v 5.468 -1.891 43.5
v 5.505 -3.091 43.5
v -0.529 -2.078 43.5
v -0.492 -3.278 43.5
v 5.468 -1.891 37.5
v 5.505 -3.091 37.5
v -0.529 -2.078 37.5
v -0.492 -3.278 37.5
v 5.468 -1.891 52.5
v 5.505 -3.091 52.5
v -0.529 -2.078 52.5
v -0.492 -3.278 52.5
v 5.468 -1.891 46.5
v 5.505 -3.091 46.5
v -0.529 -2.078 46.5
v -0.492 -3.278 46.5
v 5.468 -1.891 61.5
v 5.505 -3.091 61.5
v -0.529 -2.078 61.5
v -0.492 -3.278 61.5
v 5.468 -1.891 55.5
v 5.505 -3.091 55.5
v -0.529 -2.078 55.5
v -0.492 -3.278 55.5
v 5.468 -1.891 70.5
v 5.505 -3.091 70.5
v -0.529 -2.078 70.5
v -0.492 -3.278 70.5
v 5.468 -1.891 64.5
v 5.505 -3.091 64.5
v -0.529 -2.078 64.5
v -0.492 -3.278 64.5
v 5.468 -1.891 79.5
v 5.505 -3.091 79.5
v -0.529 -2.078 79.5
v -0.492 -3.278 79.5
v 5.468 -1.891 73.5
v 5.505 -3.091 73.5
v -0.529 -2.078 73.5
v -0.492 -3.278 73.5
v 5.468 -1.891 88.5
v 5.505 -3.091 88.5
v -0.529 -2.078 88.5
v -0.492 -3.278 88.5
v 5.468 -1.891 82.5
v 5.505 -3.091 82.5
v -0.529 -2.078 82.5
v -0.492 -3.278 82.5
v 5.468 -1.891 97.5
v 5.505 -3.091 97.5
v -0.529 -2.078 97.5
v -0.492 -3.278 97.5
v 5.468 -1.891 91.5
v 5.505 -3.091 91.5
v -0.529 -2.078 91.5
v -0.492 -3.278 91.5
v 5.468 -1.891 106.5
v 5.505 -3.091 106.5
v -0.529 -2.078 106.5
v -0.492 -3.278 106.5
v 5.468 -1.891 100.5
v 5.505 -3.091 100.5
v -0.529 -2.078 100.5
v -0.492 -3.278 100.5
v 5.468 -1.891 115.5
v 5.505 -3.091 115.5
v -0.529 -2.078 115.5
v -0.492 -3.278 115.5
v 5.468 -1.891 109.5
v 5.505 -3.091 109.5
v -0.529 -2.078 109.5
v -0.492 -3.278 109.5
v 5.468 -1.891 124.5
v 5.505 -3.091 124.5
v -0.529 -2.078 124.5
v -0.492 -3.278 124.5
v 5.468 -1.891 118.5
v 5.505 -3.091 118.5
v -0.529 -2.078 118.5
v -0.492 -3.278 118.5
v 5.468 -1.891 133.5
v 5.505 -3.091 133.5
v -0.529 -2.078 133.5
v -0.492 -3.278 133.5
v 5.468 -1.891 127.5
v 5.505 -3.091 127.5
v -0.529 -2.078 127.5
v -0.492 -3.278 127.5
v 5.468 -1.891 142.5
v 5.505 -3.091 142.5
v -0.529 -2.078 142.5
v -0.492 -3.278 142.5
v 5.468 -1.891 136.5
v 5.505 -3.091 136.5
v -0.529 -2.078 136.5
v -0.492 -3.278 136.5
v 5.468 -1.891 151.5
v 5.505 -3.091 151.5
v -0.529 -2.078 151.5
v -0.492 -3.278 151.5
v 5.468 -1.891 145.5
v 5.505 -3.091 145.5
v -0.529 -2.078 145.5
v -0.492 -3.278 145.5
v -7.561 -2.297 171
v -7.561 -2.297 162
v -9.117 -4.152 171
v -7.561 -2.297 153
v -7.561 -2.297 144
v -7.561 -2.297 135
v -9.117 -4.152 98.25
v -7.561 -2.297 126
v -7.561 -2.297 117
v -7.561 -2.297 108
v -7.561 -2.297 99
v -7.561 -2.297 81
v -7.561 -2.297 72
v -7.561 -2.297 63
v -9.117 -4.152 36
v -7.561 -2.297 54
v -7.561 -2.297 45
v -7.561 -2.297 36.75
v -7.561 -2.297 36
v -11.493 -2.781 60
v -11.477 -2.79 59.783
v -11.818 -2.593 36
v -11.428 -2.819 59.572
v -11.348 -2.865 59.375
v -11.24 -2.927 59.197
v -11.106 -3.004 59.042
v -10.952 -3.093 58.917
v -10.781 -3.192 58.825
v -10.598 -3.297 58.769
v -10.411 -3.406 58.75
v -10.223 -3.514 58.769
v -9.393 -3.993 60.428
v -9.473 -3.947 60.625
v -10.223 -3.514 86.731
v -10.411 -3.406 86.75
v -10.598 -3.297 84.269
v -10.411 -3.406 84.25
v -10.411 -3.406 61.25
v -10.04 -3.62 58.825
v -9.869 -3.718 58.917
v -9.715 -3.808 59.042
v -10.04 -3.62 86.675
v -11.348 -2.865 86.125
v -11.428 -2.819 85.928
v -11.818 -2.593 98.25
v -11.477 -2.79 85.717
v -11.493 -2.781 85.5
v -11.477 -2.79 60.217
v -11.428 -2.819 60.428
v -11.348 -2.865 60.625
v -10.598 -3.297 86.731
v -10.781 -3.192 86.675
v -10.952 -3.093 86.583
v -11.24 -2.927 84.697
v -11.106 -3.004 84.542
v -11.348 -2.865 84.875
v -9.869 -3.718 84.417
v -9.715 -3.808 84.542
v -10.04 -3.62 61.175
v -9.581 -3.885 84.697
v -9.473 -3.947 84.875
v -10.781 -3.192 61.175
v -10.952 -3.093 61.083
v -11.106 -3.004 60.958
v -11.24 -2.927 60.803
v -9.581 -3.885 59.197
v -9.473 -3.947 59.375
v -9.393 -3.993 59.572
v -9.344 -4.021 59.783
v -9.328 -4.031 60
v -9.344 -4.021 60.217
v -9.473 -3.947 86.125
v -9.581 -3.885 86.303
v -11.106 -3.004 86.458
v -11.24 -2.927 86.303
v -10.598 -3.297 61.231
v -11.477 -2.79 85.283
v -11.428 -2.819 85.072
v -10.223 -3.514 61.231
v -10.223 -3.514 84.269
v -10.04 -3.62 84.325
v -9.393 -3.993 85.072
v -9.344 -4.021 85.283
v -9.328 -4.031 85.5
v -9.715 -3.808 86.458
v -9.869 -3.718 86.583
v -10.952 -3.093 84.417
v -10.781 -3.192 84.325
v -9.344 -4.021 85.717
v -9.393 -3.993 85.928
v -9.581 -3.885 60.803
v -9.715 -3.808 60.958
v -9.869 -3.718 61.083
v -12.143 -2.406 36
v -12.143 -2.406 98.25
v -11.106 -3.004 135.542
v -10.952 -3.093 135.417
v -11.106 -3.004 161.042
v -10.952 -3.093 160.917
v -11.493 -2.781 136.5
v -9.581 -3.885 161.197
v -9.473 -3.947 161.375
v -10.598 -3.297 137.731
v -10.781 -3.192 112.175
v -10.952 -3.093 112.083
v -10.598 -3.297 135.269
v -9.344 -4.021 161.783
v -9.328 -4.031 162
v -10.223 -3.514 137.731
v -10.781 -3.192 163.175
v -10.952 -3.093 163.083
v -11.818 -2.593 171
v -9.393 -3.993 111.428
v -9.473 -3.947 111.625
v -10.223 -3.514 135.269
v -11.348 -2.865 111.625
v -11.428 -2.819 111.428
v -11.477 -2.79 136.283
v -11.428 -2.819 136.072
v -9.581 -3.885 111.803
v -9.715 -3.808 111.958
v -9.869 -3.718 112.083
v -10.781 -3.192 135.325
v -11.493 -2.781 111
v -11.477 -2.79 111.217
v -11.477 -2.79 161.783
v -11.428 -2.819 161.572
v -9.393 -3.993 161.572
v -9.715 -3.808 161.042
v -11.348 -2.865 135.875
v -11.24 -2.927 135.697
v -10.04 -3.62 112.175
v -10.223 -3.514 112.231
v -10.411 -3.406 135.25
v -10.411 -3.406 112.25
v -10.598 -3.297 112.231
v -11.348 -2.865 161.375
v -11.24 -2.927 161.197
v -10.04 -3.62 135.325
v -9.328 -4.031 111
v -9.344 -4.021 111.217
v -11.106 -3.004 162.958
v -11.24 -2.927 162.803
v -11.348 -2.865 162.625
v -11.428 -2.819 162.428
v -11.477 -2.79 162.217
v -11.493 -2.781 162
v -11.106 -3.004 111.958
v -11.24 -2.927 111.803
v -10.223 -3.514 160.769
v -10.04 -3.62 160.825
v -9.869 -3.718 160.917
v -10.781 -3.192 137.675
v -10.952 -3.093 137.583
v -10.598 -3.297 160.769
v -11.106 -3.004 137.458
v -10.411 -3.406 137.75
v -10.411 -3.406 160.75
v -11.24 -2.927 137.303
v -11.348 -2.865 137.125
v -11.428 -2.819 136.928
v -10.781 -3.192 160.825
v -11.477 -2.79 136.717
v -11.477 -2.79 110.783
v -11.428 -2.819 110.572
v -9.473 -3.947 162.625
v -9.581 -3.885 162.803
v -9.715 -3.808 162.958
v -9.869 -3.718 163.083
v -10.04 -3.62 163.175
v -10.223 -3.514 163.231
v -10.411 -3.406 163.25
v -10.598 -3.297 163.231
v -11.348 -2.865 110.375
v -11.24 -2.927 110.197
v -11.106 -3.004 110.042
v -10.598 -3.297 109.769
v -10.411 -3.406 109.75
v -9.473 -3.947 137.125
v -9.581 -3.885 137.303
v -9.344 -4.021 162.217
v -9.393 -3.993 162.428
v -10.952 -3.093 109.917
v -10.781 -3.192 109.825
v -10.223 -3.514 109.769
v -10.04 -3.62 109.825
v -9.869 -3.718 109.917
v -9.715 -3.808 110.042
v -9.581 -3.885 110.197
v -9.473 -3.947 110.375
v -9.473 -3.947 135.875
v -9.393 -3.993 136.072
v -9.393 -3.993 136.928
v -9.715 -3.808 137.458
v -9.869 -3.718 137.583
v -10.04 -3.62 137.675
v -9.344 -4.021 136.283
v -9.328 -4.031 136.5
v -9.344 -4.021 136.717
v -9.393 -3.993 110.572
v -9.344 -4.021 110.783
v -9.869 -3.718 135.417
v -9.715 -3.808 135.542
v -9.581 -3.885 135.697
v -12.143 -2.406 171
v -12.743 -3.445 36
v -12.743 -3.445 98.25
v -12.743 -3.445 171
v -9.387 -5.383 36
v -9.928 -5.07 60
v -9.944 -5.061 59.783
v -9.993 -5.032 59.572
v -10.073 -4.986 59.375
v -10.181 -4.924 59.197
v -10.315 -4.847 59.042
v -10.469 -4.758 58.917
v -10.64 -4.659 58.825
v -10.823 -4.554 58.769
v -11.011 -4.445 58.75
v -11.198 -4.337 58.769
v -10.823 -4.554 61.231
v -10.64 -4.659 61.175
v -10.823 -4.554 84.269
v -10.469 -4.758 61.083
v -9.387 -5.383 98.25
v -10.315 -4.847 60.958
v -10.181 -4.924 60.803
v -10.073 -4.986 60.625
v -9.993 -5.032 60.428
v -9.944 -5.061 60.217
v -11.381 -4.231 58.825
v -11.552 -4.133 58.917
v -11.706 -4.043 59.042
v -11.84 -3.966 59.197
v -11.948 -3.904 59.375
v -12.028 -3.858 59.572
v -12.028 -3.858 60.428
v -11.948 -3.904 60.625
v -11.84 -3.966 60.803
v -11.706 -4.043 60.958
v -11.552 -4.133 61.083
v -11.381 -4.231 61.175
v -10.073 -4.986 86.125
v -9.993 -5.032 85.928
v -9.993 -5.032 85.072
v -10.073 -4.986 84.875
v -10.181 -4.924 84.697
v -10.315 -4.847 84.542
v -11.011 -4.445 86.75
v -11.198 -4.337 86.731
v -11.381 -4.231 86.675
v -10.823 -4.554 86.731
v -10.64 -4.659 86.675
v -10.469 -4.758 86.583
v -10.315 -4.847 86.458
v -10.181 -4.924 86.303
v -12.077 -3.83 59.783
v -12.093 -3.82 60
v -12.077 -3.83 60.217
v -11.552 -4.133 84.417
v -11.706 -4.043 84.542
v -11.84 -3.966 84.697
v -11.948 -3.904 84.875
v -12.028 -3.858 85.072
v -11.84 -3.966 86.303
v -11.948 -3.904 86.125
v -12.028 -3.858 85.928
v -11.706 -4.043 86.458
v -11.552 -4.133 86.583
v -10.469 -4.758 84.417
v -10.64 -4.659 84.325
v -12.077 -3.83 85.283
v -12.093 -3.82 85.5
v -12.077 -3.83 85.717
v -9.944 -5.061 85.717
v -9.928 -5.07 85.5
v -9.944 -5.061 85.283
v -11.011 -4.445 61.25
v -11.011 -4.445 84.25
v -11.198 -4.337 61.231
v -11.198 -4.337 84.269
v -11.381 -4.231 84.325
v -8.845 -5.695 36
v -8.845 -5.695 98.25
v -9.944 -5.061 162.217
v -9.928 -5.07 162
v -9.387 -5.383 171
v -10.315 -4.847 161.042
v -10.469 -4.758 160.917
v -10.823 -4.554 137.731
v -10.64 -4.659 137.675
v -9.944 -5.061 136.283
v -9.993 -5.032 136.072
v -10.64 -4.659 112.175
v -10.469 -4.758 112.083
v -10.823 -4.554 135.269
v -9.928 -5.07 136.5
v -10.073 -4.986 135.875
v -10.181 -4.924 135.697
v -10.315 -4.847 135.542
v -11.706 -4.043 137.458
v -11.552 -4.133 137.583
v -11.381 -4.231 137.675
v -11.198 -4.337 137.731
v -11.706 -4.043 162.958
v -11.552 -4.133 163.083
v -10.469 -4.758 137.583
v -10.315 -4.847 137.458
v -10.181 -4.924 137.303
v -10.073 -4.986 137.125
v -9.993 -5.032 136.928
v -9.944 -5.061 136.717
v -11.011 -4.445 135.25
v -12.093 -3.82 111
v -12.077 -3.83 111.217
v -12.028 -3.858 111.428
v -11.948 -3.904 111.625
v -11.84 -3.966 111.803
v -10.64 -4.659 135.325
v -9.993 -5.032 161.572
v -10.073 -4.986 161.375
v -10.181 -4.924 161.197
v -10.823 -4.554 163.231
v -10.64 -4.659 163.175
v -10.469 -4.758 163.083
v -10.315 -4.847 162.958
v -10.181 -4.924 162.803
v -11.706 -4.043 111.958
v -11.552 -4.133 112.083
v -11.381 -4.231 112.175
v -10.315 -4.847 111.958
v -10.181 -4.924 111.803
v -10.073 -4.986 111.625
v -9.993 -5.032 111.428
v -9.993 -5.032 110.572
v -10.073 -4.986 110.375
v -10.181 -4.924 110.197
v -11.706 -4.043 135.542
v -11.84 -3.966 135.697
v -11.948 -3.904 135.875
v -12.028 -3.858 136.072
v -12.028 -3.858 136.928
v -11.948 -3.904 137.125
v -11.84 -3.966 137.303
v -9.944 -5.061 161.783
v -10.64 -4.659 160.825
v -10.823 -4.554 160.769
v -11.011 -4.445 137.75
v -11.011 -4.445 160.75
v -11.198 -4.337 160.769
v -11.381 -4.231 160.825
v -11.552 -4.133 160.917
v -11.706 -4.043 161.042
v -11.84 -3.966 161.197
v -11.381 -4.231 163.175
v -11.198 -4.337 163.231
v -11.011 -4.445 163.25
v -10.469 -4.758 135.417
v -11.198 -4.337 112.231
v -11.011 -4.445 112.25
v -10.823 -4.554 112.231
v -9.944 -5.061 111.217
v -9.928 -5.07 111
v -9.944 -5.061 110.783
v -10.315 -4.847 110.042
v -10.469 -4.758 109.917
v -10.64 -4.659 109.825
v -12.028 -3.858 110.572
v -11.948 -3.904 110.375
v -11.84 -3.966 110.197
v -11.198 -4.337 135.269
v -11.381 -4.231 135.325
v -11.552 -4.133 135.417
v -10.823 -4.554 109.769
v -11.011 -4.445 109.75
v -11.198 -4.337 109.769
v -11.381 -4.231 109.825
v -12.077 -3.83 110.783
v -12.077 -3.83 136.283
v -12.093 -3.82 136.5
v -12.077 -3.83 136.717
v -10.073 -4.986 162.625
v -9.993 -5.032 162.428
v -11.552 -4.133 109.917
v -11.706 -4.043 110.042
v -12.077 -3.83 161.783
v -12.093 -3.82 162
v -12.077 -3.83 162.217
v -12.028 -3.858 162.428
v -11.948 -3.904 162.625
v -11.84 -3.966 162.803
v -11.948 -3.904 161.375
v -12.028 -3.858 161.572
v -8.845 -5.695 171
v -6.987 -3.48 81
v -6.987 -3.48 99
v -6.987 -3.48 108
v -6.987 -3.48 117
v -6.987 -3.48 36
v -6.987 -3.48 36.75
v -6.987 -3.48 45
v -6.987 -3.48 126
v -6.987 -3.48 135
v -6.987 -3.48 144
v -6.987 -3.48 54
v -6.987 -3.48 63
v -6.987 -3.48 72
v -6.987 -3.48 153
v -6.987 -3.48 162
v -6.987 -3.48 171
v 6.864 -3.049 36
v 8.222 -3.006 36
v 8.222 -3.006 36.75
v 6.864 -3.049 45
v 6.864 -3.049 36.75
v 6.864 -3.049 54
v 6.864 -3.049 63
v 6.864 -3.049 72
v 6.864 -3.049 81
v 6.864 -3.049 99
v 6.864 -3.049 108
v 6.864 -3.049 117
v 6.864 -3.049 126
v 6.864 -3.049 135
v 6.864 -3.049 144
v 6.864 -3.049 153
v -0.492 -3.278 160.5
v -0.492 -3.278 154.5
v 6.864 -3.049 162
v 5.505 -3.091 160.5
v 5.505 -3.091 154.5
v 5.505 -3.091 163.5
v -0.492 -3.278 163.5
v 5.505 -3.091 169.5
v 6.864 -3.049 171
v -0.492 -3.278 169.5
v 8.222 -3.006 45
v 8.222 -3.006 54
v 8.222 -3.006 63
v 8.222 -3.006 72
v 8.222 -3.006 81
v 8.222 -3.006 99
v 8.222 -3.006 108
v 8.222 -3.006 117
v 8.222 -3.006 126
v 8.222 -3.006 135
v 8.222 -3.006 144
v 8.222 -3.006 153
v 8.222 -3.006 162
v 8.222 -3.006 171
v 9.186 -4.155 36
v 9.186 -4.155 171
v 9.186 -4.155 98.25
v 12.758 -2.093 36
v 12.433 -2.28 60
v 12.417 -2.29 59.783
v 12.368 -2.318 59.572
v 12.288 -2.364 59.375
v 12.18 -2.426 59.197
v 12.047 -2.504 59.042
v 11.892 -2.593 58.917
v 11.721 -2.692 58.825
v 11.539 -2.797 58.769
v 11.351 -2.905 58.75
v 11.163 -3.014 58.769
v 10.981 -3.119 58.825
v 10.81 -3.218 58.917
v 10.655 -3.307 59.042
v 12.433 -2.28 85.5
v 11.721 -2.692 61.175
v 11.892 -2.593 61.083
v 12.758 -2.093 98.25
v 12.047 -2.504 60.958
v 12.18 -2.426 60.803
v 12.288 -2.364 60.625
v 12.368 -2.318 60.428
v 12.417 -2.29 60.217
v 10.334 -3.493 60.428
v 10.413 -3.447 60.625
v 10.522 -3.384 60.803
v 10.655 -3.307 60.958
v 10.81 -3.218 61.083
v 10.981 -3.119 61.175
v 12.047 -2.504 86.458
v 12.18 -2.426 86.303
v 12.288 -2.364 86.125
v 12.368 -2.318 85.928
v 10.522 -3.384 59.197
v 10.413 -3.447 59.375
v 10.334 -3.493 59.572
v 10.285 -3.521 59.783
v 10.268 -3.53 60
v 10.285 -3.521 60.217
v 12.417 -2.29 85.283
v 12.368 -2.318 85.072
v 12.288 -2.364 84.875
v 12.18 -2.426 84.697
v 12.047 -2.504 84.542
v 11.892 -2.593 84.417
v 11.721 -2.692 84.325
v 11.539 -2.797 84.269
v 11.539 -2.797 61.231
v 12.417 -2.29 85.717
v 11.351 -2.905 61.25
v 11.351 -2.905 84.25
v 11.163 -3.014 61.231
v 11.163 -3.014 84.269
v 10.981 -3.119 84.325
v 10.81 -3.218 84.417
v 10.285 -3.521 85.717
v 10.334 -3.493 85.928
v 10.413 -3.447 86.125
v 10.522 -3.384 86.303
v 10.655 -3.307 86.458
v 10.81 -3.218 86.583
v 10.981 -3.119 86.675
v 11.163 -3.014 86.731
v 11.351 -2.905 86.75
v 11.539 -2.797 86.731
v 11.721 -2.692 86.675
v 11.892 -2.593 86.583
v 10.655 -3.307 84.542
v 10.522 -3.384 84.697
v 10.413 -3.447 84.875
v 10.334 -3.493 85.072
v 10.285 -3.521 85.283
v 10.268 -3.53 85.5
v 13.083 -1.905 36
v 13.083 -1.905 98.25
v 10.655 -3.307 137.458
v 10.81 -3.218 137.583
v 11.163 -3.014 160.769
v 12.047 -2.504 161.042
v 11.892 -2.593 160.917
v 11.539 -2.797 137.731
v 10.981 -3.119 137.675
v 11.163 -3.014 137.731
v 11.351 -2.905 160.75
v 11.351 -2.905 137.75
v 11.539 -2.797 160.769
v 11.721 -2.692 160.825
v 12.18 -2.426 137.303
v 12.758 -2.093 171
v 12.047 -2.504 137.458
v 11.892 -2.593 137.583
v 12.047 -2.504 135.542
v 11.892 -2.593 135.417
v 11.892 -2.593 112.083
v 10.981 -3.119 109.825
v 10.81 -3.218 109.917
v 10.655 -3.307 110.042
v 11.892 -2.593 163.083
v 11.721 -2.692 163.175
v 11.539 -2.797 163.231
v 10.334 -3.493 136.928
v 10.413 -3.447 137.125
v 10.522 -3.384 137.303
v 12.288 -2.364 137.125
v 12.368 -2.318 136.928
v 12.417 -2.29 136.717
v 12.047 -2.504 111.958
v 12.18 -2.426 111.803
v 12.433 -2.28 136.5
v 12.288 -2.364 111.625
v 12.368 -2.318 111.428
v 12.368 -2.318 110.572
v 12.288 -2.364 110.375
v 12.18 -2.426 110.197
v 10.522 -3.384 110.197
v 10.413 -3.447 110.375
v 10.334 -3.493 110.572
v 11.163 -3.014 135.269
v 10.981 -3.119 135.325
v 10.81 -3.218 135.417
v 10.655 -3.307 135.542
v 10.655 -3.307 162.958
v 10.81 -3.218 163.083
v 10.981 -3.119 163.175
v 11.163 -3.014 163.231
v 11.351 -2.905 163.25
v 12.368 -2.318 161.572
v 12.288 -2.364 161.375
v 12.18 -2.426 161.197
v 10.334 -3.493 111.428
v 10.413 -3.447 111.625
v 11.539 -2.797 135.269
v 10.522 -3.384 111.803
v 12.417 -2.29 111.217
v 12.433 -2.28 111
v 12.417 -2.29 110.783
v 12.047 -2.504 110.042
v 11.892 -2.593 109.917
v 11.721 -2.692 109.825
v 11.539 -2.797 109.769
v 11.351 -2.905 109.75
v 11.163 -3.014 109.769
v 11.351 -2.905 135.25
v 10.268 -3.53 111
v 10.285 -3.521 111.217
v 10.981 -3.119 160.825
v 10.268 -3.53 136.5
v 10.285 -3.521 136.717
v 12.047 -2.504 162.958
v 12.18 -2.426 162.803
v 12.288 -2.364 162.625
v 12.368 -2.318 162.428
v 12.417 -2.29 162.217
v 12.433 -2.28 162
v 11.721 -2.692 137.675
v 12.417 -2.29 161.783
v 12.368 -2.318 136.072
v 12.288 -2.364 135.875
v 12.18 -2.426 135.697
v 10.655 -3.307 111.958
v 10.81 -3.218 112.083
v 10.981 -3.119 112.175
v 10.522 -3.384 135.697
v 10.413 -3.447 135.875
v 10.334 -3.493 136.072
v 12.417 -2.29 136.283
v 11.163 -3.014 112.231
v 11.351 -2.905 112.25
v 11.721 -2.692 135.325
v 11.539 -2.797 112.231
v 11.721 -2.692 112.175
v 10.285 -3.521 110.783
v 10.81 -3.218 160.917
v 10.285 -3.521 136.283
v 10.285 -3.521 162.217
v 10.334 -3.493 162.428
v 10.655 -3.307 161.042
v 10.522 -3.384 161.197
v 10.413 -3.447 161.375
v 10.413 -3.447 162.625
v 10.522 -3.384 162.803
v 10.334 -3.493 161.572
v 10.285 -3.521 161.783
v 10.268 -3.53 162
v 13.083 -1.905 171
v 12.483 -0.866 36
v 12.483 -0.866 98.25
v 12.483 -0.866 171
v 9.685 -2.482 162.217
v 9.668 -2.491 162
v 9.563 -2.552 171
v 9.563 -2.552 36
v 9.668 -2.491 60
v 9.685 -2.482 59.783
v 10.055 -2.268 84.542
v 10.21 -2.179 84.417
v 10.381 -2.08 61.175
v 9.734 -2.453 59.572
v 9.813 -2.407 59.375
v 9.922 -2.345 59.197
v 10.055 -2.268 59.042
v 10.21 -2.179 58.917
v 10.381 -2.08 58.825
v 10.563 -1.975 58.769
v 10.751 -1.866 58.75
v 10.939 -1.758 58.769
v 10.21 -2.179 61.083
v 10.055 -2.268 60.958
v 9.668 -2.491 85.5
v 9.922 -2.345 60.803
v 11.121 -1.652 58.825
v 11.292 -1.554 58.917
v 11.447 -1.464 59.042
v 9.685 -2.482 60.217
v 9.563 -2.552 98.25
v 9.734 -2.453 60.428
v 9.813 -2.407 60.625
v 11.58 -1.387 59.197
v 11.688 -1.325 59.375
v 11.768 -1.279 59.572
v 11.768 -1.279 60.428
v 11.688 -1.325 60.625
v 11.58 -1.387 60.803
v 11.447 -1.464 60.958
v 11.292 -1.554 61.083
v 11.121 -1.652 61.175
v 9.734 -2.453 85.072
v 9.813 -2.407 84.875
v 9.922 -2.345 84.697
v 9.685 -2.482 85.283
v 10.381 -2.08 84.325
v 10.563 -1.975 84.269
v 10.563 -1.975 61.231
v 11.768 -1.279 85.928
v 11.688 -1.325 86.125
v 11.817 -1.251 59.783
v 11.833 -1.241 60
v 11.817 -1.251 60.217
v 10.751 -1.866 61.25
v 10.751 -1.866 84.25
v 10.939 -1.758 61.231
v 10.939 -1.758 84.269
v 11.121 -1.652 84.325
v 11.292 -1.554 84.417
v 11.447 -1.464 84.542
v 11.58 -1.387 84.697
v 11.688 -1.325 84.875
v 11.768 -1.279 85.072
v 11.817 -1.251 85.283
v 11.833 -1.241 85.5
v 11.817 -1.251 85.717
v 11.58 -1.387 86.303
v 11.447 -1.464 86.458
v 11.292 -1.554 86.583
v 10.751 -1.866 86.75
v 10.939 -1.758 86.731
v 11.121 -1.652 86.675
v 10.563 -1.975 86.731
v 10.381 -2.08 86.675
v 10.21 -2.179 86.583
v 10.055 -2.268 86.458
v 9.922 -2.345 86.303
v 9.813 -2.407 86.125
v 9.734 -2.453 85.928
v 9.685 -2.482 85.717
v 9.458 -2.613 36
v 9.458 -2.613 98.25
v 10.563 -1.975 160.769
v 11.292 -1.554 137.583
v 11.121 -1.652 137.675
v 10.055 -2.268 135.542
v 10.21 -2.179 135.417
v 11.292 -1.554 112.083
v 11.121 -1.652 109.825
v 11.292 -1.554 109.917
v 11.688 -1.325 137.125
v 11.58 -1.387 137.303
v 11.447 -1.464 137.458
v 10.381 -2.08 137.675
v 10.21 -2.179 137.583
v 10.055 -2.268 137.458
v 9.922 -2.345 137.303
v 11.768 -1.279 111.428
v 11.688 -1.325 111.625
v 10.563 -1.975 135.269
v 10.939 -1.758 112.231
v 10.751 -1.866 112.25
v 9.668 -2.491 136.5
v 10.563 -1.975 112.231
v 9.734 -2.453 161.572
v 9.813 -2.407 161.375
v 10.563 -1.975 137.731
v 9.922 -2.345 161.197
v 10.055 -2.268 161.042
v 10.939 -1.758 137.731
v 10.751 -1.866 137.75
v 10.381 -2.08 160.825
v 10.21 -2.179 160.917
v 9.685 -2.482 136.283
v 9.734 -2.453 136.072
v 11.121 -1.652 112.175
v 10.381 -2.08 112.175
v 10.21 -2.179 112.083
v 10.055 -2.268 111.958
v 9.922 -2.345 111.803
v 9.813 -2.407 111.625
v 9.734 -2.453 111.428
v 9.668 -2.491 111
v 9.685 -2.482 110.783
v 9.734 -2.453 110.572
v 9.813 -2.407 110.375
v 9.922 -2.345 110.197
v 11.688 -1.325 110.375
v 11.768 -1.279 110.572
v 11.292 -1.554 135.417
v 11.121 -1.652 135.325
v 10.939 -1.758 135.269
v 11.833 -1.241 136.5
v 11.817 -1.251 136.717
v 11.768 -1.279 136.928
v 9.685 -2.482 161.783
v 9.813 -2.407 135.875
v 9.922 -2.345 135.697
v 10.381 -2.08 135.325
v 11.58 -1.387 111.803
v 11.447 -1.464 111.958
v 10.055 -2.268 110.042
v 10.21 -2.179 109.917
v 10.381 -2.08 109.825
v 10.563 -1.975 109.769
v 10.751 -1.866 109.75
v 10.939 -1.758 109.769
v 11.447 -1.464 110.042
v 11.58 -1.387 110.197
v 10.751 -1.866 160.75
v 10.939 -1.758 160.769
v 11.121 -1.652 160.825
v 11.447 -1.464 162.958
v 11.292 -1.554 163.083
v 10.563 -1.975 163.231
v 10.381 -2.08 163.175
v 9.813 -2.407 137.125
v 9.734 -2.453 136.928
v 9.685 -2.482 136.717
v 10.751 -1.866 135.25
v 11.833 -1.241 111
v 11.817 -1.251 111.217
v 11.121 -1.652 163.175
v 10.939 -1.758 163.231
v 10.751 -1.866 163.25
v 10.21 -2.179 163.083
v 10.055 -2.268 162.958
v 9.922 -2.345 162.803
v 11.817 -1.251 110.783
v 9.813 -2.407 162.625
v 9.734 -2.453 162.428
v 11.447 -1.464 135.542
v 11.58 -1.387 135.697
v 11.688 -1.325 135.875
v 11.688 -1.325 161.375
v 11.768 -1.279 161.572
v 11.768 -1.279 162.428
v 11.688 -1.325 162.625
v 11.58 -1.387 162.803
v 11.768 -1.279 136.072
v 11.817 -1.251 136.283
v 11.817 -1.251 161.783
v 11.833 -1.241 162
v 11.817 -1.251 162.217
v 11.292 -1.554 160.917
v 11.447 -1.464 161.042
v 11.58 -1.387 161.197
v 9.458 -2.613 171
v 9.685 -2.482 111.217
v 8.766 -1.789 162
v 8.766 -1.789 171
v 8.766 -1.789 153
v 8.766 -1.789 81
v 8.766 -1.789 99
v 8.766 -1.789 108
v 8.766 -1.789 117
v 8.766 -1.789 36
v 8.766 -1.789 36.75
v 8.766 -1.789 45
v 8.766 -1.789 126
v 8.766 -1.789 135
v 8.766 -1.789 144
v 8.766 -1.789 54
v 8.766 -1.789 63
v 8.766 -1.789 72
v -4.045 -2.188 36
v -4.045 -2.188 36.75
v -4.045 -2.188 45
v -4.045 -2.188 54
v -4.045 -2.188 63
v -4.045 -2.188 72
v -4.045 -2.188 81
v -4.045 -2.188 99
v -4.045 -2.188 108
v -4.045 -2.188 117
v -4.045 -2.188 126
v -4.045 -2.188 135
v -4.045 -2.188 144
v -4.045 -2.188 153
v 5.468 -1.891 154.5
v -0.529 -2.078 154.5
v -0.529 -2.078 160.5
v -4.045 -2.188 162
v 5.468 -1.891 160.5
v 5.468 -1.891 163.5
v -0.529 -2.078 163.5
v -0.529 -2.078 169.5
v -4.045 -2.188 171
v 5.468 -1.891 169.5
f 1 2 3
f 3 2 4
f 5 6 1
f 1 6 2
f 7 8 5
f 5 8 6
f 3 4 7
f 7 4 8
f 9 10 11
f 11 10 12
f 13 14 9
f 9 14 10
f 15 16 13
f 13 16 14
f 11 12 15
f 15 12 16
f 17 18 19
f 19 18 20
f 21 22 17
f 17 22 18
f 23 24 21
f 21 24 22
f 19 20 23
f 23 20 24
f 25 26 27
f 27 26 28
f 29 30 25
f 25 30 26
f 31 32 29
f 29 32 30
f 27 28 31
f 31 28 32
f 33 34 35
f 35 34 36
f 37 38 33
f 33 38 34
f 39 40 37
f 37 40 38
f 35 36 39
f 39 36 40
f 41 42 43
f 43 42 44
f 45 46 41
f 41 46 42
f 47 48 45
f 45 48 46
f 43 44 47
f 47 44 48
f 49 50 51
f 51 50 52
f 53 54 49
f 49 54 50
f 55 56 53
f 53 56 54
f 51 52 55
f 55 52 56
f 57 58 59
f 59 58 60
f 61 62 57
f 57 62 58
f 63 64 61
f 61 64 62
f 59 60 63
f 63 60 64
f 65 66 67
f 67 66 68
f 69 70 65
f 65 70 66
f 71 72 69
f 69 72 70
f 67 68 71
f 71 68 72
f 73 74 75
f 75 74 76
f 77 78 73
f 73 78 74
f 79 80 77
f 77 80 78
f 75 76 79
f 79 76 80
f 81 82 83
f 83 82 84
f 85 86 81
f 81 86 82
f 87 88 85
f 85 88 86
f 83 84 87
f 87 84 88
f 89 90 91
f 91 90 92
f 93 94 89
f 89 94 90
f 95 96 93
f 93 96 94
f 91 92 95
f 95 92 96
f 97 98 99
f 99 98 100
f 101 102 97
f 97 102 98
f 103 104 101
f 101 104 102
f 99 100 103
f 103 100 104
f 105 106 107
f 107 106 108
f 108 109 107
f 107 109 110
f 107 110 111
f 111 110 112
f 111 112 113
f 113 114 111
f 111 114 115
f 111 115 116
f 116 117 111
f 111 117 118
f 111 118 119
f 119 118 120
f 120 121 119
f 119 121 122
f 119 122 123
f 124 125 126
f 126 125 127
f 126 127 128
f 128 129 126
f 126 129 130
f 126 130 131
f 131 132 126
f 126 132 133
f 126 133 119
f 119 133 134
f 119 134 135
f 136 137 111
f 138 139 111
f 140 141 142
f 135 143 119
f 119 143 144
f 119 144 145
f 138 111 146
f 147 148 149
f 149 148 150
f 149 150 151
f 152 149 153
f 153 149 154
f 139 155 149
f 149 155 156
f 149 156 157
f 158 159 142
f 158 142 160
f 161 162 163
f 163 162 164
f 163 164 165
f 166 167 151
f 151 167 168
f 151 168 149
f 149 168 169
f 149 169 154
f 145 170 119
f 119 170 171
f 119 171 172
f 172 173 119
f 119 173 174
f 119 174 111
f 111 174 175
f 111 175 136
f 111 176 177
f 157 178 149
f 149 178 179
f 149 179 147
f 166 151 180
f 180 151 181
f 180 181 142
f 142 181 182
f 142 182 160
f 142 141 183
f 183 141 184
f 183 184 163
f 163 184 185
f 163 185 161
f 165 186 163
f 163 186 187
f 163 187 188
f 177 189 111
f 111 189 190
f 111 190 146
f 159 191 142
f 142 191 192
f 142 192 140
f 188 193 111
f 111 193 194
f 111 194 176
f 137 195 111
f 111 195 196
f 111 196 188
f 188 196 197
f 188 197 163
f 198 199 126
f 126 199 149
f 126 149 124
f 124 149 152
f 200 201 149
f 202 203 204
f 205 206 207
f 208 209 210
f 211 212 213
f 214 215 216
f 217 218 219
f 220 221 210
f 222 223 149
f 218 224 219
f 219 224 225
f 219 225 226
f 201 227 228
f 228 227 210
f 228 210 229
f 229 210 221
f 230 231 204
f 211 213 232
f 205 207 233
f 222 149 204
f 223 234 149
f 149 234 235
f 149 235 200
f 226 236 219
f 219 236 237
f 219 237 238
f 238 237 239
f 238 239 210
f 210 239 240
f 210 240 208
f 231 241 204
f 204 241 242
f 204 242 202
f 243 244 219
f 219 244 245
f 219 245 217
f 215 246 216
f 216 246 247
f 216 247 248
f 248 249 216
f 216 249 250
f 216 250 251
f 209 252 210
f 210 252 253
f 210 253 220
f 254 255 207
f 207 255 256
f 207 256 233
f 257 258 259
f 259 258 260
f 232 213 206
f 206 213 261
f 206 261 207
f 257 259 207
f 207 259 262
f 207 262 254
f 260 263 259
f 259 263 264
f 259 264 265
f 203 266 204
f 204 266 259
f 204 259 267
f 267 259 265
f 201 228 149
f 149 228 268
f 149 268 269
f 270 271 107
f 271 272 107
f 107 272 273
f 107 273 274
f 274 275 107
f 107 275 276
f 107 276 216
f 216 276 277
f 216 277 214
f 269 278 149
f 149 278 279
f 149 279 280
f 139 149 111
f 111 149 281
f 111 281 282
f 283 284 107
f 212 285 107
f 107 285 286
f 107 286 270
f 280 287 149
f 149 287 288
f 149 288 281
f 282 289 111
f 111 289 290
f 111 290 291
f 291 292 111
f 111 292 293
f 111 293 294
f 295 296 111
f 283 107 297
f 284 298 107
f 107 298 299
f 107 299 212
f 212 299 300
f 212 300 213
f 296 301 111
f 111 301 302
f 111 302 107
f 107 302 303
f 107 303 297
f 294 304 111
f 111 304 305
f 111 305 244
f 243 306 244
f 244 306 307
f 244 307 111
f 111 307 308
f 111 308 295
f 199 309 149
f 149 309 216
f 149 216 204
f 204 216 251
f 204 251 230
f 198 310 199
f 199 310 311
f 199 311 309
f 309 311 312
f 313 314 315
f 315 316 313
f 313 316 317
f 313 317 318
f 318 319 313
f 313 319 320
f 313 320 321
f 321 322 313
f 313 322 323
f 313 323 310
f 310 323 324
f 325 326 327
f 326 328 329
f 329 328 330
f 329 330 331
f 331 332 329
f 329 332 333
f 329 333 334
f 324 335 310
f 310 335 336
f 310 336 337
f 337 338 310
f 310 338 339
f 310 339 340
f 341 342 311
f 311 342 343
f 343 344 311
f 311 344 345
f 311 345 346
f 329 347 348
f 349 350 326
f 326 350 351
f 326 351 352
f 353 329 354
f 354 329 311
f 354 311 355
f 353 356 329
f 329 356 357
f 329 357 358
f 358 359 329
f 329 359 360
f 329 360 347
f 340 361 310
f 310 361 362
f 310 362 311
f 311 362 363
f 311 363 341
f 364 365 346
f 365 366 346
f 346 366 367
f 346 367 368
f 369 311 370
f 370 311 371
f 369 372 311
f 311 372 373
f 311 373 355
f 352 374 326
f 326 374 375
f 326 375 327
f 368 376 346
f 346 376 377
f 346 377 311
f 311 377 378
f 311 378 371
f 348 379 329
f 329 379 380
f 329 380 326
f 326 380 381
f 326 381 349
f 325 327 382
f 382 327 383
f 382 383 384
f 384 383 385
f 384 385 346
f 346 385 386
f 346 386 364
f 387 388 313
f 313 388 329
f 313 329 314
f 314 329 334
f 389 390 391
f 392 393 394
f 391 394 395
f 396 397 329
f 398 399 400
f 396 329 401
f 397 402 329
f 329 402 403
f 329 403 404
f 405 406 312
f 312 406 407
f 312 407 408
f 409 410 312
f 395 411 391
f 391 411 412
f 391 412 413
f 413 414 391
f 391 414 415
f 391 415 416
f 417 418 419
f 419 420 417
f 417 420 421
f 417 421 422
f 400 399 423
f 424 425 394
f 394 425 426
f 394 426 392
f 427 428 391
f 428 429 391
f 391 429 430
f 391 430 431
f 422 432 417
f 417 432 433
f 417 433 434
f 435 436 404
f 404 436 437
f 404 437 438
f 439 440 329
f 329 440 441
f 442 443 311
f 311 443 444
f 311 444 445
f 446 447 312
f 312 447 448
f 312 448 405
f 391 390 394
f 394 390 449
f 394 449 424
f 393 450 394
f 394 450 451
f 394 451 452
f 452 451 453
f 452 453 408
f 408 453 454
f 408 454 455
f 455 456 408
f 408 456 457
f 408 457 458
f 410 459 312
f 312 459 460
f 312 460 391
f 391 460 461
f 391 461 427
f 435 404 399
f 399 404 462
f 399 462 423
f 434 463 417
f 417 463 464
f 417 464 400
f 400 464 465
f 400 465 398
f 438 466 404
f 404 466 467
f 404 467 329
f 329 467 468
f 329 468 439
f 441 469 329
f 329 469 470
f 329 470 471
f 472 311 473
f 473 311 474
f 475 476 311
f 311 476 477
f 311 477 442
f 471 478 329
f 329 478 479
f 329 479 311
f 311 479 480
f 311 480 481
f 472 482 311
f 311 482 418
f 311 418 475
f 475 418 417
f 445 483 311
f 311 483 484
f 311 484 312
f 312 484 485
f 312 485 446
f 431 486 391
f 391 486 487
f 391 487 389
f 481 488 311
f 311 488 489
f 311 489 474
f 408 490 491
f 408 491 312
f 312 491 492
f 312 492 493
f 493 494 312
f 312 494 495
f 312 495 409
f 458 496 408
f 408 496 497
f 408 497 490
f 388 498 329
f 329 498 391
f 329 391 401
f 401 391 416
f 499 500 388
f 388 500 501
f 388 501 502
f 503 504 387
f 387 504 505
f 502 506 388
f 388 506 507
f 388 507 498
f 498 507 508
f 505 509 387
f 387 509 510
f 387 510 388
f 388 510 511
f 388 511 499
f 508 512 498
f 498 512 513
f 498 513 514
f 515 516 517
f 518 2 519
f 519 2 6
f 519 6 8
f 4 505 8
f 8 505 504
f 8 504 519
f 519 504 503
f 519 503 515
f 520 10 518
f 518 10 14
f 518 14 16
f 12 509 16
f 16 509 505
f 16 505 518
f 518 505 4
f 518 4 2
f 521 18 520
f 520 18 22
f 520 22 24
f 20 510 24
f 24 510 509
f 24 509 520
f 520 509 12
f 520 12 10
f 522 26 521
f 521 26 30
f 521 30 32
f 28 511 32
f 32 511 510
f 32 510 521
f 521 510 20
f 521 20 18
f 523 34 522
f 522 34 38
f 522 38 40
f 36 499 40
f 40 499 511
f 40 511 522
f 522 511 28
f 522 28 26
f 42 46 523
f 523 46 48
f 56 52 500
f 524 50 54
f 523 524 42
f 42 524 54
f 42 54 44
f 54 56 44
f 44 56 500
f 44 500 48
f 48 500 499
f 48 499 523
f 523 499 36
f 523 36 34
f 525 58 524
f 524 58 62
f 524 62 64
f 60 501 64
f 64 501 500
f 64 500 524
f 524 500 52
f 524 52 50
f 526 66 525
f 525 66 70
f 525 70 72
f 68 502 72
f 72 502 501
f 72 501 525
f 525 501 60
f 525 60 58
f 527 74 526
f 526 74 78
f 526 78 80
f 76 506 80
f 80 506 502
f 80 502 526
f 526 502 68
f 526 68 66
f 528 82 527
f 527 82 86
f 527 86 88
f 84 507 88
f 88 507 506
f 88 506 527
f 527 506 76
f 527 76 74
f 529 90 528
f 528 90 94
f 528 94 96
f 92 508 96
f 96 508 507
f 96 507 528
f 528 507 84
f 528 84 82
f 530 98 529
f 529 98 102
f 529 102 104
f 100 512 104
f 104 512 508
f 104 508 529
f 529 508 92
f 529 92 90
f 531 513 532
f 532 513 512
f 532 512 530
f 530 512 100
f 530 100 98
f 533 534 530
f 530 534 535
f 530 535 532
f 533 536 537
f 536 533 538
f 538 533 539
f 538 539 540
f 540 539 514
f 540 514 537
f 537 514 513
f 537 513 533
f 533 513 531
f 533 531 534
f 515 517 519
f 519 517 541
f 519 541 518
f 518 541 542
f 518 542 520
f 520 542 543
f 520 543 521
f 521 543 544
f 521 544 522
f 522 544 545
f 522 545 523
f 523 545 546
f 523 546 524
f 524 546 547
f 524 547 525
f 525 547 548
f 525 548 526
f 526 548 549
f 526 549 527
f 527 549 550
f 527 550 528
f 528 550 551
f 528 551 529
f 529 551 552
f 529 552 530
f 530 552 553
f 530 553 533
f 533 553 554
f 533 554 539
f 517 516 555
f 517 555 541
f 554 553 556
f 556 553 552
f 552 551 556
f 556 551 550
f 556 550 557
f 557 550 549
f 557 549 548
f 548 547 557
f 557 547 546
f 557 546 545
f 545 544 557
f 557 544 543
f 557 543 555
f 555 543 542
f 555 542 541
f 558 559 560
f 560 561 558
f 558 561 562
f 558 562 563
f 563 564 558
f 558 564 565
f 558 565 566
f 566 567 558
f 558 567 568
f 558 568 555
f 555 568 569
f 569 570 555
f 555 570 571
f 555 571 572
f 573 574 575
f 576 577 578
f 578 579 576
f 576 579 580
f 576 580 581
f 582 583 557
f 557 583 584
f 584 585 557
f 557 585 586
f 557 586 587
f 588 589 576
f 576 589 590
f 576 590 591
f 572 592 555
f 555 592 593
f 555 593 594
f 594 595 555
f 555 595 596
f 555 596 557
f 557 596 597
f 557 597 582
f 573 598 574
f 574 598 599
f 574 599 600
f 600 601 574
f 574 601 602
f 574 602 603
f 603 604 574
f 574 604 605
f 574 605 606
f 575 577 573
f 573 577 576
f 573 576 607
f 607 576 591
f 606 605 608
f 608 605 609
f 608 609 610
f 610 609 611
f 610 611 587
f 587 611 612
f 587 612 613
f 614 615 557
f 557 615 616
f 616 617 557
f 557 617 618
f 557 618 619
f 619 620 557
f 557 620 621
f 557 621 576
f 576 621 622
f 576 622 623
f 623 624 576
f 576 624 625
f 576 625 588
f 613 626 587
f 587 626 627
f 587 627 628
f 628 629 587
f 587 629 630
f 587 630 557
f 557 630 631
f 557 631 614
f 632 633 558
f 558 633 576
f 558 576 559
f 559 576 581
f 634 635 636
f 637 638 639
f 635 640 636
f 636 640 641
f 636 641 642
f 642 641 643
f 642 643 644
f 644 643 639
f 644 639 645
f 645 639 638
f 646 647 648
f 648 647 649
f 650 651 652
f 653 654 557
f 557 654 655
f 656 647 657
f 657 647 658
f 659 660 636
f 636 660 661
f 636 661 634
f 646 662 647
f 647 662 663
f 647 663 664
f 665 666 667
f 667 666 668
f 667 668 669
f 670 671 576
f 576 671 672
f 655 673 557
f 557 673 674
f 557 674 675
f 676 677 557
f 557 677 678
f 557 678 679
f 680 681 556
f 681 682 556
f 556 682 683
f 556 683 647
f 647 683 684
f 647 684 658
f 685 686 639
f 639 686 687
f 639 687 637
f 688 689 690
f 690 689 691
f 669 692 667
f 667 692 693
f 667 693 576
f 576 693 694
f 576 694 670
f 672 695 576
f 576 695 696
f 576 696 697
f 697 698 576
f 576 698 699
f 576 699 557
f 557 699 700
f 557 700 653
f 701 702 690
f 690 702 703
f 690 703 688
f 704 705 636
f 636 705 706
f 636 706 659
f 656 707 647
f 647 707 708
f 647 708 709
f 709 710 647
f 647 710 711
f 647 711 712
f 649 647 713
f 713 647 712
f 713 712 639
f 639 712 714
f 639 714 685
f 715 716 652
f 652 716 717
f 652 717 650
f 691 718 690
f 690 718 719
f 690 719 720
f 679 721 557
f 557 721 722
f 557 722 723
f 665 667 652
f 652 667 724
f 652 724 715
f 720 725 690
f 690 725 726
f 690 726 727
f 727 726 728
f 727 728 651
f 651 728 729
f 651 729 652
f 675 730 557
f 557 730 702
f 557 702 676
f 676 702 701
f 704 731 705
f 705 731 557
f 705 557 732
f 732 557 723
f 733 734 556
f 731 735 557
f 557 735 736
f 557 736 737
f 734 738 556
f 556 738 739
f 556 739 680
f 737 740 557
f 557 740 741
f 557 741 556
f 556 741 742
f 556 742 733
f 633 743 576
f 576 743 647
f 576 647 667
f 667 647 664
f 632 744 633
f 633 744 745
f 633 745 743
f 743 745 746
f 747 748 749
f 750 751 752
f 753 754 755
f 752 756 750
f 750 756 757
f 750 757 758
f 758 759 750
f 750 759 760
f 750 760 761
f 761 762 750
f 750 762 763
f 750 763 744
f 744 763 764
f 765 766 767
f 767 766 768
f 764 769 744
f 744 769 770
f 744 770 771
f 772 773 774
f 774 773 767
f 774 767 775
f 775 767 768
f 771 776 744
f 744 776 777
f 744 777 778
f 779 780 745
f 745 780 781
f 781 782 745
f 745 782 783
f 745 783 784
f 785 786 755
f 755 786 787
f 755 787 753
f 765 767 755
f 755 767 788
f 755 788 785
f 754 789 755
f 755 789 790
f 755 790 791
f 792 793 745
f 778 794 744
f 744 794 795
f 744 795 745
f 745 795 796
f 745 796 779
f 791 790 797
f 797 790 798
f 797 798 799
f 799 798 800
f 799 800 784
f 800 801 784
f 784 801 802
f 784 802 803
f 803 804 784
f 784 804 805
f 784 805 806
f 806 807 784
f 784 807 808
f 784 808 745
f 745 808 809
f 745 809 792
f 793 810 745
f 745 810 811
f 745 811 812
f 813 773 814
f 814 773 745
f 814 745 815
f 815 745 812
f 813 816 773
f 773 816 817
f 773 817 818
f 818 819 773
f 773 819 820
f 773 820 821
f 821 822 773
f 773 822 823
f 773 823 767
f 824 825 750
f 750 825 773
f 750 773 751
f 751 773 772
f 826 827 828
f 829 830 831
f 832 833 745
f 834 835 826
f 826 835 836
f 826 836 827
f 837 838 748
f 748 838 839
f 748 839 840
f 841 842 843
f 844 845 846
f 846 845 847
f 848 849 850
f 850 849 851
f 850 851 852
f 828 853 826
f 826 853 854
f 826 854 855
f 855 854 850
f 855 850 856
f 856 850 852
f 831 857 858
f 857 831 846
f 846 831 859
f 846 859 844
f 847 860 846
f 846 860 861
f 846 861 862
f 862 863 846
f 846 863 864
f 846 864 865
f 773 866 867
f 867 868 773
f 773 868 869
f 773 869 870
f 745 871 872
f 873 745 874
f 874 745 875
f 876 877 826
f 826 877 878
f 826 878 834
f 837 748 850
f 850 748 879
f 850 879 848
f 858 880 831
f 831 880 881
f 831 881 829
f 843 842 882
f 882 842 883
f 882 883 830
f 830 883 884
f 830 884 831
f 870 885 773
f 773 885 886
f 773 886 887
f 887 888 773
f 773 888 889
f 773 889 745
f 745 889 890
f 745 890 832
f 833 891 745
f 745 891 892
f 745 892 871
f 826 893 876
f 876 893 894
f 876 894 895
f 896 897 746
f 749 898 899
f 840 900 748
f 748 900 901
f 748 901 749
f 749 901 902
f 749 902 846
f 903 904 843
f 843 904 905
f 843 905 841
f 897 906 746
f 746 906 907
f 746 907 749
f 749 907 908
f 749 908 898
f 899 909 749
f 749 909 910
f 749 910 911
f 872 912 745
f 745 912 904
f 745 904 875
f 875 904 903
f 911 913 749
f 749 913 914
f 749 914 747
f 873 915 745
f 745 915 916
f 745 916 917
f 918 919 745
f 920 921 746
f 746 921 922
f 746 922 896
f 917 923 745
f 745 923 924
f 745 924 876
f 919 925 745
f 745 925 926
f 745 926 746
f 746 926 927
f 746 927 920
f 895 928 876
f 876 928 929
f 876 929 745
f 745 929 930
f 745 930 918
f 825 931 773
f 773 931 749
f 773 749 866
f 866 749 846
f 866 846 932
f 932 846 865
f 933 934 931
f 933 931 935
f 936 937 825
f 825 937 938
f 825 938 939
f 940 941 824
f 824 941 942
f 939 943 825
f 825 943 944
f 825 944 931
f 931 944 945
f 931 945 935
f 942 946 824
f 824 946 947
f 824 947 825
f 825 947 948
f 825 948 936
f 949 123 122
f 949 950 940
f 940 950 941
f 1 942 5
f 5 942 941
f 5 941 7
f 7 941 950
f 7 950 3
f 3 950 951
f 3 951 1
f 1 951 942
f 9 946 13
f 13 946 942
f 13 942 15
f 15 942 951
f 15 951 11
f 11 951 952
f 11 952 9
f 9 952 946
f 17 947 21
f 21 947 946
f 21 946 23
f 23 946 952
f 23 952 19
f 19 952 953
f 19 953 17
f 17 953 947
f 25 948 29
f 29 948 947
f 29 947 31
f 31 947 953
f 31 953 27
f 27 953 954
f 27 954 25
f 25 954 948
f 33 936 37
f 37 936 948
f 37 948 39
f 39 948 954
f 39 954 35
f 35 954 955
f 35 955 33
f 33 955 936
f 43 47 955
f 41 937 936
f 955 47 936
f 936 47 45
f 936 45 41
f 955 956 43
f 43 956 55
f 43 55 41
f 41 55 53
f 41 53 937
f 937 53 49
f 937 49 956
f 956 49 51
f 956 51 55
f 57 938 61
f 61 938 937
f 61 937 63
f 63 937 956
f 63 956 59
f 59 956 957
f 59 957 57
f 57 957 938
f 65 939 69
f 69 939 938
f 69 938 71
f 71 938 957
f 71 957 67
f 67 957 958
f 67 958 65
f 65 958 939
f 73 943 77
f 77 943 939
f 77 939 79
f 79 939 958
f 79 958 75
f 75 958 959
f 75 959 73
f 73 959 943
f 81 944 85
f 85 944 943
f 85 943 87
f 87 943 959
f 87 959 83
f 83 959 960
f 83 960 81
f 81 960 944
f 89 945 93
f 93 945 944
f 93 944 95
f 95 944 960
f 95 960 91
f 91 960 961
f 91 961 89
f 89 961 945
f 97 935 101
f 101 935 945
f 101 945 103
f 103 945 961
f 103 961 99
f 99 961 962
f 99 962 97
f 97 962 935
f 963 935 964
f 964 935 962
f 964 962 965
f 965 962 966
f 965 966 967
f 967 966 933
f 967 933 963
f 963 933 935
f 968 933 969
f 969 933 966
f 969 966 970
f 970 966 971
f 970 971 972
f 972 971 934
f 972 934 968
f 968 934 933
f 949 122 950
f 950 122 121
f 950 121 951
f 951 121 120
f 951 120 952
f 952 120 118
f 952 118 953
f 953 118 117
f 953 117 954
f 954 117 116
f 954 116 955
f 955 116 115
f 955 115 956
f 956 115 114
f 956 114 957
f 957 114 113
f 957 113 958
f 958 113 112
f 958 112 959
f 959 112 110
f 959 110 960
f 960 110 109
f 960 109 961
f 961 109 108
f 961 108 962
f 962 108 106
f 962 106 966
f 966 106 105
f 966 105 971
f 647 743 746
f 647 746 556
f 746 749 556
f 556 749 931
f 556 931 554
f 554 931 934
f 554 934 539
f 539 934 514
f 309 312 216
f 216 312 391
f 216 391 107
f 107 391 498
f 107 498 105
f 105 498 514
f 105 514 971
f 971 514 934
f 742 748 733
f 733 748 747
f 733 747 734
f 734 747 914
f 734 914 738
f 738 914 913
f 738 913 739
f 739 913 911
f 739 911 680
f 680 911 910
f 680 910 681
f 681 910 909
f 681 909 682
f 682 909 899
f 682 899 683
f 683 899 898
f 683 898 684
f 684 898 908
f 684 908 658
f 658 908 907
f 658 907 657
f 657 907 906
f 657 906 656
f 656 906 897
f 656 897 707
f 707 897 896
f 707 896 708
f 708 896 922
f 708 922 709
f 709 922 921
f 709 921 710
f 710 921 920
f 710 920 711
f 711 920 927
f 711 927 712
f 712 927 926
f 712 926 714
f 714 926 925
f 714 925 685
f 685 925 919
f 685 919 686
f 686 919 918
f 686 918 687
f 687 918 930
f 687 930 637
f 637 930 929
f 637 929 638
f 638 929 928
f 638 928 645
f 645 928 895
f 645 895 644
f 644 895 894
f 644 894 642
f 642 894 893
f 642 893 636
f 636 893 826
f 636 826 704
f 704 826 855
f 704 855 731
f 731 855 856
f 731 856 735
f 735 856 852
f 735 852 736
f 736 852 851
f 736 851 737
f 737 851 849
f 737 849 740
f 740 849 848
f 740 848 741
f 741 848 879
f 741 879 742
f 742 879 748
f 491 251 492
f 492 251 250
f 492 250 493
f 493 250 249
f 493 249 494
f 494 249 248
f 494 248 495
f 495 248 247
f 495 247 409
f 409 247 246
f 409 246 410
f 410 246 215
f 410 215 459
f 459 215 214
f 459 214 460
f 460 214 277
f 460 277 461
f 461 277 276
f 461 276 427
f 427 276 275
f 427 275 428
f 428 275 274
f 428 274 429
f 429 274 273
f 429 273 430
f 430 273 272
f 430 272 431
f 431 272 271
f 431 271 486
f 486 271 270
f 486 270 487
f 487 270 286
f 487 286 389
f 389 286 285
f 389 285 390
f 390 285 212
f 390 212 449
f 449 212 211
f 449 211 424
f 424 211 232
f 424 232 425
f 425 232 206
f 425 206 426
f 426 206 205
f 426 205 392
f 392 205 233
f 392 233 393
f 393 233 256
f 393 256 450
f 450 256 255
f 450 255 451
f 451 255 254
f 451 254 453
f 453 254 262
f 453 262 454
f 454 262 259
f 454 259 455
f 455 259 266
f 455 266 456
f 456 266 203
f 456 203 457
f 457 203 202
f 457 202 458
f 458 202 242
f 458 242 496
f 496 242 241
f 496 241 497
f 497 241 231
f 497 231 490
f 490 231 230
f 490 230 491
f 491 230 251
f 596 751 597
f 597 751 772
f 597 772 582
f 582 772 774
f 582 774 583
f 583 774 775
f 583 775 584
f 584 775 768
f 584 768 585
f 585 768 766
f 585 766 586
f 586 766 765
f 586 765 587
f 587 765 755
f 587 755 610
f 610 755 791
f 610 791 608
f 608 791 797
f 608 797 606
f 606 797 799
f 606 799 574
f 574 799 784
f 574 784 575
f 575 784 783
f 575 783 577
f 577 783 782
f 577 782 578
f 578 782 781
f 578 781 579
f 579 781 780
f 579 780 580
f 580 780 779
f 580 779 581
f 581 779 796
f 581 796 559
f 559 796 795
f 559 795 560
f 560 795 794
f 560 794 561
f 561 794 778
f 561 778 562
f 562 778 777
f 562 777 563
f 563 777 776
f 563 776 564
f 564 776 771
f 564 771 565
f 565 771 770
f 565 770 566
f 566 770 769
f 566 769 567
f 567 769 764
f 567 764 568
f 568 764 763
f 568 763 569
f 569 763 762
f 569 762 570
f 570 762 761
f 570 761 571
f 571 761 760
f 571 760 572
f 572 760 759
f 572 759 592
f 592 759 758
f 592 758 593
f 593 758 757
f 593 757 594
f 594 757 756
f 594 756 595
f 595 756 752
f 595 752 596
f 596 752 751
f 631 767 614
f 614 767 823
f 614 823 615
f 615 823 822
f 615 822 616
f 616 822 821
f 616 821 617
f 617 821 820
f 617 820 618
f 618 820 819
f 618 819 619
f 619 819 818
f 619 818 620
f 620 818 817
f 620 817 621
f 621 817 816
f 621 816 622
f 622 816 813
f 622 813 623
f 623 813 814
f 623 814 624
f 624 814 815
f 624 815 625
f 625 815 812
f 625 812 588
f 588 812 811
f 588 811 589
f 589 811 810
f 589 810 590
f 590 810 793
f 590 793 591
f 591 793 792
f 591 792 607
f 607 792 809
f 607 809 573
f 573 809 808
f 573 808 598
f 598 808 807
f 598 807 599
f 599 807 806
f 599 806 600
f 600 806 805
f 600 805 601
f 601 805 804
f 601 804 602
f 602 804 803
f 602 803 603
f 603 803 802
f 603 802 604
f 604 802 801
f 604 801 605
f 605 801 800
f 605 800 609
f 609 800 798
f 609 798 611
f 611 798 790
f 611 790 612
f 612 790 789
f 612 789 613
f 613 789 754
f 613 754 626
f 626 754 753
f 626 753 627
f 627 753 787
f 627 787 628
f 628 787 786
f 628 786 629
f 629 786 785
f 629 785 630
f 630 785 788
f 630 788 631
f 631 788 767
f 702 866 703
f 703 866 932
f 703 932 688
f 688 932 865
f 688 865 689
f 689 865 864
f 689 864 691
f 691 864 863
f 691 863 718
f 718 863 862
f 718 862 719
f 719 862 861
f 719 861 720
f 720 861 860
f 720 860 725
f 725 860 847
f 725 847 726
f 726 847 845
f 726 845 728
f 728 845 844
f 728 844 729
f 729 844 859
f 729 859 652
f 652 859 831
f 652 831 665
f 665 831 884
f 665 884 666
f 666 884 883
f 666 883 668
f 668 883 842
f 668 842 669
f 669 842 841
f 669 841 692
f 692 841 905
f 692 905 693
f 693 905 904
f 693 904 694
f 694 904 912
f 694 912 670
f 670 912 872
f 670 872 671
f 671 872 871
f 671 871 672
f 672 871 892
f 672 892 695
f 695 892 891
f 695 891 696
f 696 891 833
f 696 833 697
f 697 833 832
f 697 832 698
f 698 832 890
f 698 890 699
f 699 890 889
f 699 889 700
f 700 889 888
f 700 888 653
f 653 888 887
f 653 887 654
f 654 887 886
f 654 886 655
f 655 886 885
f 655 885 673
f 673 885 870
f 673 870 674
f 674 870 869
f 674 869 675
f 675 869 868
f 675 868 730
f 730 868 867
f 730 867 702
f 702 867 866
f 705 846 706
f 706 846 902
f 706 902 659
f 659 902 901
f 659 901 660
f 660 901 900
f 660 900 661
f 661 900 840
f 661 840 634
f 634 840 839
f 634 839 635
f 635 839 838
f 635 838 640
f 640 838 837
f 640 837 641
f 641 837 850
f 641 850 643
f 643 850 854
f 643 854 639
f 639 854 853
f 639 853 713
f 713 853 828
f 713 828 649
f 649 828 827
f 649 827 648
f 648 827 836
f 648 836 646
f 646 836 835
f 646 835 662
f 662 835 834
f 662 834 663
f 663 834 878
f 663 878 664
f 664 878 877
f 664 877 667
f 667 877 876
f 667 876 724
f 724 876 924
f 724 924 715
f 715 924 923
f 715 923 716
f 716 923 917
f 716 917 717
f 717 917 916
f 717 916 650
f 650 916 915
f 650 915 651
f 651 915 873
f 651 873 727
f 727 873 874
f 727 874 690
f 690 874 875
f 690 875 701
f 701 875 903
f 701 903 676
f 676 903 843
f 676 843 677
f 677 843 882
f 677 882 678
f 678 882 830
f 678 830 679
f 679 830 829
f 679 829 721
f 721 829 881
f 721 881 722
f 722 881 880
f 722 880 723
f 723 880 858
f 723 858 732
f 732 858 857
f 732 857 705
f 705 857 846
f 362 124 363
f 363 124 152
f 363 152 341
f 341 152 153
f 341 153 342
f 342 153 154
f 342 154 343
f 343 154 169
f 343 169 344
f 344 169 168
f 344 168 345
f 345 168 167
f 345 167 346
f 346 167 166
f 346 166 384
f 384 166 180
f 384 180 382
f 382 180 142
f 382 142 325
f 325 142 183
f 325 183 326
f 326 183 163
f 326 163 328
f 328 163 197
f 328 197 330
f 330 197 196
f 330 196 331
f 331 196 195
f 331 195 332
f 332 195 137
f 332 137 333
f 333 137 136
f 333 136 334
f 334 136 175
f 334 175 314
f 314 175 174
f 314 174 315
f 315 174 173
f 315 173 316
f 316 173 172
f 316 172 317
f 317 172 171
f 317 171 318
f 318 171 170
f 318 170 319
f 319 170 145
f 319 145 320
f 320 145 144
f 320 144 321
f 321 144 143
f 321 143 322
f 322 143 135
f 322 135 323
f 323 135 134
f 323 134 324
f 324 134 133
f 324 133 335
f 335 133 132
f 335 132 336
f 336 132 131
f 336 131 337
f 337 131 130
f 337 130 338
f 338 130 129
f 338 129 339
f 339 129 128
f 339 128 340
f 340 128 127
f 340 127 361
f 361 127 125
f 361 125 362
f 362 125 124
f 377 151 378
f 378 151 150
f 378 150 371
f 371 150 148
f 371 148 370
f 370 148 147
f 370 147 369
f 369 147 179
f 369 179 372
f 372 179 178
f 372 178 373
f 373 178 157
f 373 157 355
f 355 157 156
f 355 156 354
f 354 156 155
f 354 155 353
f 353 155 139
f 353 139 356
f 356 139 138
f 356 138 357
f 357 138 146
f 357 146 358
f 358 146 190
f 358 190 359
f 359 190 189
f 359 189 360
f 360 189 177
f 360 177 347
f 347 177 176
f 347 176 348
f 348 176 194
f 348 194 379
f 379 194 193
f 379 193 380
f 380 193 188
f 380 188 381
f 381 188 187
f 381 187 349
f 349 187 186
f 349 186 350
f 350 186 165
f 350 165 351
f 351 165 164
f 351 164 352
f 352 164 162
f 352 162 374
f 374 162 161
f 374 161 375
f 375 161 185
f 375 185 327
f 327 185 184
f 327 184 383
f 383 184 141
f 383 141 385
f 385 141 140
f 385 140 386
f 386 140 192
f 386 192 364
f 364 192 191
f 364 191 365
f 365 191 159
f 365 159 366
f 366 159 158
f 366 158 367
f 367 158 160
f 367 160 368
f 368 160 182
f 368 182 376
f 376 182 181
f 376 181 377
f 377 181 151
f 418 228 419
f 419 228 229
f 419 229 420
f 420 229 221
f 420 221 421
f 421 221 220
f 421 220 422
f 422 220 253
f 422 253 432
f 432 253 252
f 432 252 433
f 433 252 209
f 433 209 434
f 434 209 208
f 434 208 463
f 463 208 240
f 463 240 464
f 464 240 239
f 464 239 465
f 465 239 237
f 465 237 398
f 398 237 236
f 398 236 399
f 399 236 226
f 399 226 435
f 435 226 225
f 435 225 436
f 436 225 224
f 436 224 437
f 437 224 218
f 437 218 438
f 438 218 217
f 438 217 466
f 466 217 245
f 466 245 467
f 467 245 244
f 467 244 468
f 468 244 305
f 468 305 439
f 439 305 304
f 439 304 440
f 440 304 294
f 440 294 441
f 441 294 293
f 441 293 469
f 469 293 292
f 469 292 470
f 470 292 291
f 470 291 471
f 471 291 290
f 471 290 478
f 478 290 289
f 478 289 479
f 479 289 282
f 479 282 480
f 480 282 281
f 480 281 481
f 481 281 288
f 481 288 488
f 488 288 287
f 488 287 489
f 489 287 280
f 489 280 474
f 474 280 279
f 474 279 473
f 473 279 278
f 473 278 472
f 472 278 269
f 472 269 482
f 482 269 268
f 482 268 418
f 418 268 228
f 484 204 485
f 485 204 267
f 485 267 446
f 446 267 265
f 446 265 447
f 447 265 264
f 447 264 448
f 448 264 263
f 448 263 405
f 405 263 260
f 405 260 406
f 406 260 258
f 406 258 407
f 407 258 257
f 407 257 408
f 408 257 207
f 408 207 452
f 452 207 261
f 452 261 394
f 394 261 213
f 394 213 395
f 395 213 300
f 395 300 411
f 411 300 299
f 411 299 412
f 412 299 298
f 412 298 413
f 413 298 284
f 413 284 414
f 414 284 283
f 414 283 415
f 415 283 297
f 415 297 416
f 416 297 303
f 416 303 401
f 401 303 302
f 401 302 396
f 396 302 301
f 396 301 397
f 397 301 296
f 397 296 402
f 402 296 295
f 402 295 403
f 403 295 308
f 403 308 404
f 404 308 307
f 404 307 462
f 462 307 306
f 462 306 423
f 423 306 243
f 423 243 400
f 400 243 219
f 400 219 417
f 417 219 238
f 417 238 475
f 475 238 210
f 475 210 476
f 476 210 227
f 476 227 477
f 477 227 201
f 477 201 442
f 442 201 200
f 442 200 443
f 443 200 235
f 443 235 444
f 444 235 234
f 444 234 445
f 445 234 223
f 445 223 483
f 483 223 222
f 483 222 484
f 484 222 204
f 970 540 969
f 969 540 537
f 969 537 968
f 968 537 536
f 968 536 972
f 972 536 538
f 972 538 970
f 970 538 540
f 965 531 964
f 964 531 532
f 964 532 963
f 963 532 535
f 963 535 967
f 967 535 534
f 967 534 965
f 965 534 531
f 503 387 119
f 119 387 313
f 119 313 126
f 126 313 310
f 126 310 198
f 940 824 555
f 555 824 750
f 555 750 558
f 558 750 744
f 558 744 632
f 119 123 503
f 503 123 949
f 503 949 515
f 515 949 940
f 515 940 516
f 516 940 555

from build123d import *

# Parameters (mm, degrees)
BOSS_EXTRUDE1_DEPTH = 171
SKETCH2_R           = 1.25
CUT_EXTRUDE1_DEPTH  = 10
SKETCH4_R           = 1.25
CUT_EXTRUDE2_DEPTH  = 10
LPATTERN1_COUNT     = 7
LPATTERN1_PITCH     = 25.5
SKETCH5_W           = 6
SKETCH5_H           = 6
CUT_EXTRUDE3_DEPTH  = 10
LPATTERN2_COUNT     = 19
LPATTERN2_PITCH     = 9
SKETCH6_W           = 39.406826709
SKETCH6_H           = 10.111121127
CUT_EXTRUDE4_DEPTH  = 36


with BuildPart() as part:
    # Sketch1 → Boss-Extrude1 (new body)
    with BuildSketch(Plane.XY):
        Polygon((-7.560747901, -2.297203345), (8.76644945, -1.788652997), (9.457807768, -2.612581756), (12.482904169, -0.866041535), (13.082904169, -1.905272019), (9.185789852, -4.155272019), (8.221608437, -3.006205355), (-6.986662858, -3.479904024), (-8.845450789, -5.695121219), (-12.742565106, -3.445121219), (-12.142565106, -2.405890734), (-9.117468705, -4.152430955), align=None)
    extrude(amount=BOSS_EXTRUDE1_DEPTH)

    # Sketch2 → Cut-Extrude1 (cut)
    with BuildSketch(Plane(origin=(3.495733027, -6.054787213, 0), x_dir=(0.8660254037844403, 0.49999999999999734, 0), z_dir=(-0.49999999999999734, 0.8660254037844403, 0))):
        with Locations(Location((8.377491356, -162, 0), (0, 0, 180))):
            Circle(SKETCH2_R)
    cut_extrude1 = extrude(amount=-CUT_EXTRUDE1_DEPTH, mode=Mode.SUBTRACT)

    # Sketch4 → Cut-Extrude2 (cut)
    with BuildSketch(Plane(origin=(-4.077422524, -7.062302975, 0), x_dir=(0.8660254037844392, -0.49999999999999917, 0), z_dir=(0.49999999999999917, 0.8660254037844392, 0))):
        with Locations(Location((-7.312824482, -162, 0), (0, 0, 180))):
            Circle(SKETCH4_R)
    cut_extrude2 = extrude(amount=-CUT_EXTRUDE2_DEPTH, mode=Mode.SUBTRACT)

    # LPattern1: Cut-Extrude1, Cut-Extrude2 ×7
    with Locations(*[(0, 0, -i * LPATTERN1_PITCH) for i in range(1, LPATTERN1_COUNT)]):
        add(cut_extrude1, mode=Mode.SUBTRACT)
        add(cut_extrude2, mode=Mode.SUBTRACT)

    # Sketch5 → Cut-Extrude3 (cut)
    with BuildSketch(Plane(origin=(0.064154599, -2.059707176, 0), x_dir=(0.9995152712604761, 0.031132338766899612, 0), z_dir=(-0.031132338766899612, 0.9995152712604761, 0))):
        with Locations((2.406515149, -166.5)):
            Rectangle(SKETCH5_W, SKETCH5_H)
    cut_extrude3 = extrude(amount=-CUT_EXTRUDE3_DEPTH, mode=Mode.SUBTRACT)

    # LPattern2: Cut-Extrude3 ×19
    with Locations(*[(0, 0, -i * LPATTERN2_PITCH) for i in range(1, LPATTERN2_COUNT)]):
        add(cut_extrude3, mode=Mode.SUBTRACT)

    # Sketch6 → Cut-Extrude4 (cut)
    with BuildSketch(Plane(origin=(0, 0, 0), x_dir=(-1, 0, 0), z_dir=(0, 0, -1))):
        with Locations((-0.40262443, -3.001999491)):
            Rectangle(SKETCH6_W, SKETCH6_H)
    extrude(amount=-CUT_EXTRUDE4_DEPTH, mode=Mode.SUBTRACT)


solid = part.part
